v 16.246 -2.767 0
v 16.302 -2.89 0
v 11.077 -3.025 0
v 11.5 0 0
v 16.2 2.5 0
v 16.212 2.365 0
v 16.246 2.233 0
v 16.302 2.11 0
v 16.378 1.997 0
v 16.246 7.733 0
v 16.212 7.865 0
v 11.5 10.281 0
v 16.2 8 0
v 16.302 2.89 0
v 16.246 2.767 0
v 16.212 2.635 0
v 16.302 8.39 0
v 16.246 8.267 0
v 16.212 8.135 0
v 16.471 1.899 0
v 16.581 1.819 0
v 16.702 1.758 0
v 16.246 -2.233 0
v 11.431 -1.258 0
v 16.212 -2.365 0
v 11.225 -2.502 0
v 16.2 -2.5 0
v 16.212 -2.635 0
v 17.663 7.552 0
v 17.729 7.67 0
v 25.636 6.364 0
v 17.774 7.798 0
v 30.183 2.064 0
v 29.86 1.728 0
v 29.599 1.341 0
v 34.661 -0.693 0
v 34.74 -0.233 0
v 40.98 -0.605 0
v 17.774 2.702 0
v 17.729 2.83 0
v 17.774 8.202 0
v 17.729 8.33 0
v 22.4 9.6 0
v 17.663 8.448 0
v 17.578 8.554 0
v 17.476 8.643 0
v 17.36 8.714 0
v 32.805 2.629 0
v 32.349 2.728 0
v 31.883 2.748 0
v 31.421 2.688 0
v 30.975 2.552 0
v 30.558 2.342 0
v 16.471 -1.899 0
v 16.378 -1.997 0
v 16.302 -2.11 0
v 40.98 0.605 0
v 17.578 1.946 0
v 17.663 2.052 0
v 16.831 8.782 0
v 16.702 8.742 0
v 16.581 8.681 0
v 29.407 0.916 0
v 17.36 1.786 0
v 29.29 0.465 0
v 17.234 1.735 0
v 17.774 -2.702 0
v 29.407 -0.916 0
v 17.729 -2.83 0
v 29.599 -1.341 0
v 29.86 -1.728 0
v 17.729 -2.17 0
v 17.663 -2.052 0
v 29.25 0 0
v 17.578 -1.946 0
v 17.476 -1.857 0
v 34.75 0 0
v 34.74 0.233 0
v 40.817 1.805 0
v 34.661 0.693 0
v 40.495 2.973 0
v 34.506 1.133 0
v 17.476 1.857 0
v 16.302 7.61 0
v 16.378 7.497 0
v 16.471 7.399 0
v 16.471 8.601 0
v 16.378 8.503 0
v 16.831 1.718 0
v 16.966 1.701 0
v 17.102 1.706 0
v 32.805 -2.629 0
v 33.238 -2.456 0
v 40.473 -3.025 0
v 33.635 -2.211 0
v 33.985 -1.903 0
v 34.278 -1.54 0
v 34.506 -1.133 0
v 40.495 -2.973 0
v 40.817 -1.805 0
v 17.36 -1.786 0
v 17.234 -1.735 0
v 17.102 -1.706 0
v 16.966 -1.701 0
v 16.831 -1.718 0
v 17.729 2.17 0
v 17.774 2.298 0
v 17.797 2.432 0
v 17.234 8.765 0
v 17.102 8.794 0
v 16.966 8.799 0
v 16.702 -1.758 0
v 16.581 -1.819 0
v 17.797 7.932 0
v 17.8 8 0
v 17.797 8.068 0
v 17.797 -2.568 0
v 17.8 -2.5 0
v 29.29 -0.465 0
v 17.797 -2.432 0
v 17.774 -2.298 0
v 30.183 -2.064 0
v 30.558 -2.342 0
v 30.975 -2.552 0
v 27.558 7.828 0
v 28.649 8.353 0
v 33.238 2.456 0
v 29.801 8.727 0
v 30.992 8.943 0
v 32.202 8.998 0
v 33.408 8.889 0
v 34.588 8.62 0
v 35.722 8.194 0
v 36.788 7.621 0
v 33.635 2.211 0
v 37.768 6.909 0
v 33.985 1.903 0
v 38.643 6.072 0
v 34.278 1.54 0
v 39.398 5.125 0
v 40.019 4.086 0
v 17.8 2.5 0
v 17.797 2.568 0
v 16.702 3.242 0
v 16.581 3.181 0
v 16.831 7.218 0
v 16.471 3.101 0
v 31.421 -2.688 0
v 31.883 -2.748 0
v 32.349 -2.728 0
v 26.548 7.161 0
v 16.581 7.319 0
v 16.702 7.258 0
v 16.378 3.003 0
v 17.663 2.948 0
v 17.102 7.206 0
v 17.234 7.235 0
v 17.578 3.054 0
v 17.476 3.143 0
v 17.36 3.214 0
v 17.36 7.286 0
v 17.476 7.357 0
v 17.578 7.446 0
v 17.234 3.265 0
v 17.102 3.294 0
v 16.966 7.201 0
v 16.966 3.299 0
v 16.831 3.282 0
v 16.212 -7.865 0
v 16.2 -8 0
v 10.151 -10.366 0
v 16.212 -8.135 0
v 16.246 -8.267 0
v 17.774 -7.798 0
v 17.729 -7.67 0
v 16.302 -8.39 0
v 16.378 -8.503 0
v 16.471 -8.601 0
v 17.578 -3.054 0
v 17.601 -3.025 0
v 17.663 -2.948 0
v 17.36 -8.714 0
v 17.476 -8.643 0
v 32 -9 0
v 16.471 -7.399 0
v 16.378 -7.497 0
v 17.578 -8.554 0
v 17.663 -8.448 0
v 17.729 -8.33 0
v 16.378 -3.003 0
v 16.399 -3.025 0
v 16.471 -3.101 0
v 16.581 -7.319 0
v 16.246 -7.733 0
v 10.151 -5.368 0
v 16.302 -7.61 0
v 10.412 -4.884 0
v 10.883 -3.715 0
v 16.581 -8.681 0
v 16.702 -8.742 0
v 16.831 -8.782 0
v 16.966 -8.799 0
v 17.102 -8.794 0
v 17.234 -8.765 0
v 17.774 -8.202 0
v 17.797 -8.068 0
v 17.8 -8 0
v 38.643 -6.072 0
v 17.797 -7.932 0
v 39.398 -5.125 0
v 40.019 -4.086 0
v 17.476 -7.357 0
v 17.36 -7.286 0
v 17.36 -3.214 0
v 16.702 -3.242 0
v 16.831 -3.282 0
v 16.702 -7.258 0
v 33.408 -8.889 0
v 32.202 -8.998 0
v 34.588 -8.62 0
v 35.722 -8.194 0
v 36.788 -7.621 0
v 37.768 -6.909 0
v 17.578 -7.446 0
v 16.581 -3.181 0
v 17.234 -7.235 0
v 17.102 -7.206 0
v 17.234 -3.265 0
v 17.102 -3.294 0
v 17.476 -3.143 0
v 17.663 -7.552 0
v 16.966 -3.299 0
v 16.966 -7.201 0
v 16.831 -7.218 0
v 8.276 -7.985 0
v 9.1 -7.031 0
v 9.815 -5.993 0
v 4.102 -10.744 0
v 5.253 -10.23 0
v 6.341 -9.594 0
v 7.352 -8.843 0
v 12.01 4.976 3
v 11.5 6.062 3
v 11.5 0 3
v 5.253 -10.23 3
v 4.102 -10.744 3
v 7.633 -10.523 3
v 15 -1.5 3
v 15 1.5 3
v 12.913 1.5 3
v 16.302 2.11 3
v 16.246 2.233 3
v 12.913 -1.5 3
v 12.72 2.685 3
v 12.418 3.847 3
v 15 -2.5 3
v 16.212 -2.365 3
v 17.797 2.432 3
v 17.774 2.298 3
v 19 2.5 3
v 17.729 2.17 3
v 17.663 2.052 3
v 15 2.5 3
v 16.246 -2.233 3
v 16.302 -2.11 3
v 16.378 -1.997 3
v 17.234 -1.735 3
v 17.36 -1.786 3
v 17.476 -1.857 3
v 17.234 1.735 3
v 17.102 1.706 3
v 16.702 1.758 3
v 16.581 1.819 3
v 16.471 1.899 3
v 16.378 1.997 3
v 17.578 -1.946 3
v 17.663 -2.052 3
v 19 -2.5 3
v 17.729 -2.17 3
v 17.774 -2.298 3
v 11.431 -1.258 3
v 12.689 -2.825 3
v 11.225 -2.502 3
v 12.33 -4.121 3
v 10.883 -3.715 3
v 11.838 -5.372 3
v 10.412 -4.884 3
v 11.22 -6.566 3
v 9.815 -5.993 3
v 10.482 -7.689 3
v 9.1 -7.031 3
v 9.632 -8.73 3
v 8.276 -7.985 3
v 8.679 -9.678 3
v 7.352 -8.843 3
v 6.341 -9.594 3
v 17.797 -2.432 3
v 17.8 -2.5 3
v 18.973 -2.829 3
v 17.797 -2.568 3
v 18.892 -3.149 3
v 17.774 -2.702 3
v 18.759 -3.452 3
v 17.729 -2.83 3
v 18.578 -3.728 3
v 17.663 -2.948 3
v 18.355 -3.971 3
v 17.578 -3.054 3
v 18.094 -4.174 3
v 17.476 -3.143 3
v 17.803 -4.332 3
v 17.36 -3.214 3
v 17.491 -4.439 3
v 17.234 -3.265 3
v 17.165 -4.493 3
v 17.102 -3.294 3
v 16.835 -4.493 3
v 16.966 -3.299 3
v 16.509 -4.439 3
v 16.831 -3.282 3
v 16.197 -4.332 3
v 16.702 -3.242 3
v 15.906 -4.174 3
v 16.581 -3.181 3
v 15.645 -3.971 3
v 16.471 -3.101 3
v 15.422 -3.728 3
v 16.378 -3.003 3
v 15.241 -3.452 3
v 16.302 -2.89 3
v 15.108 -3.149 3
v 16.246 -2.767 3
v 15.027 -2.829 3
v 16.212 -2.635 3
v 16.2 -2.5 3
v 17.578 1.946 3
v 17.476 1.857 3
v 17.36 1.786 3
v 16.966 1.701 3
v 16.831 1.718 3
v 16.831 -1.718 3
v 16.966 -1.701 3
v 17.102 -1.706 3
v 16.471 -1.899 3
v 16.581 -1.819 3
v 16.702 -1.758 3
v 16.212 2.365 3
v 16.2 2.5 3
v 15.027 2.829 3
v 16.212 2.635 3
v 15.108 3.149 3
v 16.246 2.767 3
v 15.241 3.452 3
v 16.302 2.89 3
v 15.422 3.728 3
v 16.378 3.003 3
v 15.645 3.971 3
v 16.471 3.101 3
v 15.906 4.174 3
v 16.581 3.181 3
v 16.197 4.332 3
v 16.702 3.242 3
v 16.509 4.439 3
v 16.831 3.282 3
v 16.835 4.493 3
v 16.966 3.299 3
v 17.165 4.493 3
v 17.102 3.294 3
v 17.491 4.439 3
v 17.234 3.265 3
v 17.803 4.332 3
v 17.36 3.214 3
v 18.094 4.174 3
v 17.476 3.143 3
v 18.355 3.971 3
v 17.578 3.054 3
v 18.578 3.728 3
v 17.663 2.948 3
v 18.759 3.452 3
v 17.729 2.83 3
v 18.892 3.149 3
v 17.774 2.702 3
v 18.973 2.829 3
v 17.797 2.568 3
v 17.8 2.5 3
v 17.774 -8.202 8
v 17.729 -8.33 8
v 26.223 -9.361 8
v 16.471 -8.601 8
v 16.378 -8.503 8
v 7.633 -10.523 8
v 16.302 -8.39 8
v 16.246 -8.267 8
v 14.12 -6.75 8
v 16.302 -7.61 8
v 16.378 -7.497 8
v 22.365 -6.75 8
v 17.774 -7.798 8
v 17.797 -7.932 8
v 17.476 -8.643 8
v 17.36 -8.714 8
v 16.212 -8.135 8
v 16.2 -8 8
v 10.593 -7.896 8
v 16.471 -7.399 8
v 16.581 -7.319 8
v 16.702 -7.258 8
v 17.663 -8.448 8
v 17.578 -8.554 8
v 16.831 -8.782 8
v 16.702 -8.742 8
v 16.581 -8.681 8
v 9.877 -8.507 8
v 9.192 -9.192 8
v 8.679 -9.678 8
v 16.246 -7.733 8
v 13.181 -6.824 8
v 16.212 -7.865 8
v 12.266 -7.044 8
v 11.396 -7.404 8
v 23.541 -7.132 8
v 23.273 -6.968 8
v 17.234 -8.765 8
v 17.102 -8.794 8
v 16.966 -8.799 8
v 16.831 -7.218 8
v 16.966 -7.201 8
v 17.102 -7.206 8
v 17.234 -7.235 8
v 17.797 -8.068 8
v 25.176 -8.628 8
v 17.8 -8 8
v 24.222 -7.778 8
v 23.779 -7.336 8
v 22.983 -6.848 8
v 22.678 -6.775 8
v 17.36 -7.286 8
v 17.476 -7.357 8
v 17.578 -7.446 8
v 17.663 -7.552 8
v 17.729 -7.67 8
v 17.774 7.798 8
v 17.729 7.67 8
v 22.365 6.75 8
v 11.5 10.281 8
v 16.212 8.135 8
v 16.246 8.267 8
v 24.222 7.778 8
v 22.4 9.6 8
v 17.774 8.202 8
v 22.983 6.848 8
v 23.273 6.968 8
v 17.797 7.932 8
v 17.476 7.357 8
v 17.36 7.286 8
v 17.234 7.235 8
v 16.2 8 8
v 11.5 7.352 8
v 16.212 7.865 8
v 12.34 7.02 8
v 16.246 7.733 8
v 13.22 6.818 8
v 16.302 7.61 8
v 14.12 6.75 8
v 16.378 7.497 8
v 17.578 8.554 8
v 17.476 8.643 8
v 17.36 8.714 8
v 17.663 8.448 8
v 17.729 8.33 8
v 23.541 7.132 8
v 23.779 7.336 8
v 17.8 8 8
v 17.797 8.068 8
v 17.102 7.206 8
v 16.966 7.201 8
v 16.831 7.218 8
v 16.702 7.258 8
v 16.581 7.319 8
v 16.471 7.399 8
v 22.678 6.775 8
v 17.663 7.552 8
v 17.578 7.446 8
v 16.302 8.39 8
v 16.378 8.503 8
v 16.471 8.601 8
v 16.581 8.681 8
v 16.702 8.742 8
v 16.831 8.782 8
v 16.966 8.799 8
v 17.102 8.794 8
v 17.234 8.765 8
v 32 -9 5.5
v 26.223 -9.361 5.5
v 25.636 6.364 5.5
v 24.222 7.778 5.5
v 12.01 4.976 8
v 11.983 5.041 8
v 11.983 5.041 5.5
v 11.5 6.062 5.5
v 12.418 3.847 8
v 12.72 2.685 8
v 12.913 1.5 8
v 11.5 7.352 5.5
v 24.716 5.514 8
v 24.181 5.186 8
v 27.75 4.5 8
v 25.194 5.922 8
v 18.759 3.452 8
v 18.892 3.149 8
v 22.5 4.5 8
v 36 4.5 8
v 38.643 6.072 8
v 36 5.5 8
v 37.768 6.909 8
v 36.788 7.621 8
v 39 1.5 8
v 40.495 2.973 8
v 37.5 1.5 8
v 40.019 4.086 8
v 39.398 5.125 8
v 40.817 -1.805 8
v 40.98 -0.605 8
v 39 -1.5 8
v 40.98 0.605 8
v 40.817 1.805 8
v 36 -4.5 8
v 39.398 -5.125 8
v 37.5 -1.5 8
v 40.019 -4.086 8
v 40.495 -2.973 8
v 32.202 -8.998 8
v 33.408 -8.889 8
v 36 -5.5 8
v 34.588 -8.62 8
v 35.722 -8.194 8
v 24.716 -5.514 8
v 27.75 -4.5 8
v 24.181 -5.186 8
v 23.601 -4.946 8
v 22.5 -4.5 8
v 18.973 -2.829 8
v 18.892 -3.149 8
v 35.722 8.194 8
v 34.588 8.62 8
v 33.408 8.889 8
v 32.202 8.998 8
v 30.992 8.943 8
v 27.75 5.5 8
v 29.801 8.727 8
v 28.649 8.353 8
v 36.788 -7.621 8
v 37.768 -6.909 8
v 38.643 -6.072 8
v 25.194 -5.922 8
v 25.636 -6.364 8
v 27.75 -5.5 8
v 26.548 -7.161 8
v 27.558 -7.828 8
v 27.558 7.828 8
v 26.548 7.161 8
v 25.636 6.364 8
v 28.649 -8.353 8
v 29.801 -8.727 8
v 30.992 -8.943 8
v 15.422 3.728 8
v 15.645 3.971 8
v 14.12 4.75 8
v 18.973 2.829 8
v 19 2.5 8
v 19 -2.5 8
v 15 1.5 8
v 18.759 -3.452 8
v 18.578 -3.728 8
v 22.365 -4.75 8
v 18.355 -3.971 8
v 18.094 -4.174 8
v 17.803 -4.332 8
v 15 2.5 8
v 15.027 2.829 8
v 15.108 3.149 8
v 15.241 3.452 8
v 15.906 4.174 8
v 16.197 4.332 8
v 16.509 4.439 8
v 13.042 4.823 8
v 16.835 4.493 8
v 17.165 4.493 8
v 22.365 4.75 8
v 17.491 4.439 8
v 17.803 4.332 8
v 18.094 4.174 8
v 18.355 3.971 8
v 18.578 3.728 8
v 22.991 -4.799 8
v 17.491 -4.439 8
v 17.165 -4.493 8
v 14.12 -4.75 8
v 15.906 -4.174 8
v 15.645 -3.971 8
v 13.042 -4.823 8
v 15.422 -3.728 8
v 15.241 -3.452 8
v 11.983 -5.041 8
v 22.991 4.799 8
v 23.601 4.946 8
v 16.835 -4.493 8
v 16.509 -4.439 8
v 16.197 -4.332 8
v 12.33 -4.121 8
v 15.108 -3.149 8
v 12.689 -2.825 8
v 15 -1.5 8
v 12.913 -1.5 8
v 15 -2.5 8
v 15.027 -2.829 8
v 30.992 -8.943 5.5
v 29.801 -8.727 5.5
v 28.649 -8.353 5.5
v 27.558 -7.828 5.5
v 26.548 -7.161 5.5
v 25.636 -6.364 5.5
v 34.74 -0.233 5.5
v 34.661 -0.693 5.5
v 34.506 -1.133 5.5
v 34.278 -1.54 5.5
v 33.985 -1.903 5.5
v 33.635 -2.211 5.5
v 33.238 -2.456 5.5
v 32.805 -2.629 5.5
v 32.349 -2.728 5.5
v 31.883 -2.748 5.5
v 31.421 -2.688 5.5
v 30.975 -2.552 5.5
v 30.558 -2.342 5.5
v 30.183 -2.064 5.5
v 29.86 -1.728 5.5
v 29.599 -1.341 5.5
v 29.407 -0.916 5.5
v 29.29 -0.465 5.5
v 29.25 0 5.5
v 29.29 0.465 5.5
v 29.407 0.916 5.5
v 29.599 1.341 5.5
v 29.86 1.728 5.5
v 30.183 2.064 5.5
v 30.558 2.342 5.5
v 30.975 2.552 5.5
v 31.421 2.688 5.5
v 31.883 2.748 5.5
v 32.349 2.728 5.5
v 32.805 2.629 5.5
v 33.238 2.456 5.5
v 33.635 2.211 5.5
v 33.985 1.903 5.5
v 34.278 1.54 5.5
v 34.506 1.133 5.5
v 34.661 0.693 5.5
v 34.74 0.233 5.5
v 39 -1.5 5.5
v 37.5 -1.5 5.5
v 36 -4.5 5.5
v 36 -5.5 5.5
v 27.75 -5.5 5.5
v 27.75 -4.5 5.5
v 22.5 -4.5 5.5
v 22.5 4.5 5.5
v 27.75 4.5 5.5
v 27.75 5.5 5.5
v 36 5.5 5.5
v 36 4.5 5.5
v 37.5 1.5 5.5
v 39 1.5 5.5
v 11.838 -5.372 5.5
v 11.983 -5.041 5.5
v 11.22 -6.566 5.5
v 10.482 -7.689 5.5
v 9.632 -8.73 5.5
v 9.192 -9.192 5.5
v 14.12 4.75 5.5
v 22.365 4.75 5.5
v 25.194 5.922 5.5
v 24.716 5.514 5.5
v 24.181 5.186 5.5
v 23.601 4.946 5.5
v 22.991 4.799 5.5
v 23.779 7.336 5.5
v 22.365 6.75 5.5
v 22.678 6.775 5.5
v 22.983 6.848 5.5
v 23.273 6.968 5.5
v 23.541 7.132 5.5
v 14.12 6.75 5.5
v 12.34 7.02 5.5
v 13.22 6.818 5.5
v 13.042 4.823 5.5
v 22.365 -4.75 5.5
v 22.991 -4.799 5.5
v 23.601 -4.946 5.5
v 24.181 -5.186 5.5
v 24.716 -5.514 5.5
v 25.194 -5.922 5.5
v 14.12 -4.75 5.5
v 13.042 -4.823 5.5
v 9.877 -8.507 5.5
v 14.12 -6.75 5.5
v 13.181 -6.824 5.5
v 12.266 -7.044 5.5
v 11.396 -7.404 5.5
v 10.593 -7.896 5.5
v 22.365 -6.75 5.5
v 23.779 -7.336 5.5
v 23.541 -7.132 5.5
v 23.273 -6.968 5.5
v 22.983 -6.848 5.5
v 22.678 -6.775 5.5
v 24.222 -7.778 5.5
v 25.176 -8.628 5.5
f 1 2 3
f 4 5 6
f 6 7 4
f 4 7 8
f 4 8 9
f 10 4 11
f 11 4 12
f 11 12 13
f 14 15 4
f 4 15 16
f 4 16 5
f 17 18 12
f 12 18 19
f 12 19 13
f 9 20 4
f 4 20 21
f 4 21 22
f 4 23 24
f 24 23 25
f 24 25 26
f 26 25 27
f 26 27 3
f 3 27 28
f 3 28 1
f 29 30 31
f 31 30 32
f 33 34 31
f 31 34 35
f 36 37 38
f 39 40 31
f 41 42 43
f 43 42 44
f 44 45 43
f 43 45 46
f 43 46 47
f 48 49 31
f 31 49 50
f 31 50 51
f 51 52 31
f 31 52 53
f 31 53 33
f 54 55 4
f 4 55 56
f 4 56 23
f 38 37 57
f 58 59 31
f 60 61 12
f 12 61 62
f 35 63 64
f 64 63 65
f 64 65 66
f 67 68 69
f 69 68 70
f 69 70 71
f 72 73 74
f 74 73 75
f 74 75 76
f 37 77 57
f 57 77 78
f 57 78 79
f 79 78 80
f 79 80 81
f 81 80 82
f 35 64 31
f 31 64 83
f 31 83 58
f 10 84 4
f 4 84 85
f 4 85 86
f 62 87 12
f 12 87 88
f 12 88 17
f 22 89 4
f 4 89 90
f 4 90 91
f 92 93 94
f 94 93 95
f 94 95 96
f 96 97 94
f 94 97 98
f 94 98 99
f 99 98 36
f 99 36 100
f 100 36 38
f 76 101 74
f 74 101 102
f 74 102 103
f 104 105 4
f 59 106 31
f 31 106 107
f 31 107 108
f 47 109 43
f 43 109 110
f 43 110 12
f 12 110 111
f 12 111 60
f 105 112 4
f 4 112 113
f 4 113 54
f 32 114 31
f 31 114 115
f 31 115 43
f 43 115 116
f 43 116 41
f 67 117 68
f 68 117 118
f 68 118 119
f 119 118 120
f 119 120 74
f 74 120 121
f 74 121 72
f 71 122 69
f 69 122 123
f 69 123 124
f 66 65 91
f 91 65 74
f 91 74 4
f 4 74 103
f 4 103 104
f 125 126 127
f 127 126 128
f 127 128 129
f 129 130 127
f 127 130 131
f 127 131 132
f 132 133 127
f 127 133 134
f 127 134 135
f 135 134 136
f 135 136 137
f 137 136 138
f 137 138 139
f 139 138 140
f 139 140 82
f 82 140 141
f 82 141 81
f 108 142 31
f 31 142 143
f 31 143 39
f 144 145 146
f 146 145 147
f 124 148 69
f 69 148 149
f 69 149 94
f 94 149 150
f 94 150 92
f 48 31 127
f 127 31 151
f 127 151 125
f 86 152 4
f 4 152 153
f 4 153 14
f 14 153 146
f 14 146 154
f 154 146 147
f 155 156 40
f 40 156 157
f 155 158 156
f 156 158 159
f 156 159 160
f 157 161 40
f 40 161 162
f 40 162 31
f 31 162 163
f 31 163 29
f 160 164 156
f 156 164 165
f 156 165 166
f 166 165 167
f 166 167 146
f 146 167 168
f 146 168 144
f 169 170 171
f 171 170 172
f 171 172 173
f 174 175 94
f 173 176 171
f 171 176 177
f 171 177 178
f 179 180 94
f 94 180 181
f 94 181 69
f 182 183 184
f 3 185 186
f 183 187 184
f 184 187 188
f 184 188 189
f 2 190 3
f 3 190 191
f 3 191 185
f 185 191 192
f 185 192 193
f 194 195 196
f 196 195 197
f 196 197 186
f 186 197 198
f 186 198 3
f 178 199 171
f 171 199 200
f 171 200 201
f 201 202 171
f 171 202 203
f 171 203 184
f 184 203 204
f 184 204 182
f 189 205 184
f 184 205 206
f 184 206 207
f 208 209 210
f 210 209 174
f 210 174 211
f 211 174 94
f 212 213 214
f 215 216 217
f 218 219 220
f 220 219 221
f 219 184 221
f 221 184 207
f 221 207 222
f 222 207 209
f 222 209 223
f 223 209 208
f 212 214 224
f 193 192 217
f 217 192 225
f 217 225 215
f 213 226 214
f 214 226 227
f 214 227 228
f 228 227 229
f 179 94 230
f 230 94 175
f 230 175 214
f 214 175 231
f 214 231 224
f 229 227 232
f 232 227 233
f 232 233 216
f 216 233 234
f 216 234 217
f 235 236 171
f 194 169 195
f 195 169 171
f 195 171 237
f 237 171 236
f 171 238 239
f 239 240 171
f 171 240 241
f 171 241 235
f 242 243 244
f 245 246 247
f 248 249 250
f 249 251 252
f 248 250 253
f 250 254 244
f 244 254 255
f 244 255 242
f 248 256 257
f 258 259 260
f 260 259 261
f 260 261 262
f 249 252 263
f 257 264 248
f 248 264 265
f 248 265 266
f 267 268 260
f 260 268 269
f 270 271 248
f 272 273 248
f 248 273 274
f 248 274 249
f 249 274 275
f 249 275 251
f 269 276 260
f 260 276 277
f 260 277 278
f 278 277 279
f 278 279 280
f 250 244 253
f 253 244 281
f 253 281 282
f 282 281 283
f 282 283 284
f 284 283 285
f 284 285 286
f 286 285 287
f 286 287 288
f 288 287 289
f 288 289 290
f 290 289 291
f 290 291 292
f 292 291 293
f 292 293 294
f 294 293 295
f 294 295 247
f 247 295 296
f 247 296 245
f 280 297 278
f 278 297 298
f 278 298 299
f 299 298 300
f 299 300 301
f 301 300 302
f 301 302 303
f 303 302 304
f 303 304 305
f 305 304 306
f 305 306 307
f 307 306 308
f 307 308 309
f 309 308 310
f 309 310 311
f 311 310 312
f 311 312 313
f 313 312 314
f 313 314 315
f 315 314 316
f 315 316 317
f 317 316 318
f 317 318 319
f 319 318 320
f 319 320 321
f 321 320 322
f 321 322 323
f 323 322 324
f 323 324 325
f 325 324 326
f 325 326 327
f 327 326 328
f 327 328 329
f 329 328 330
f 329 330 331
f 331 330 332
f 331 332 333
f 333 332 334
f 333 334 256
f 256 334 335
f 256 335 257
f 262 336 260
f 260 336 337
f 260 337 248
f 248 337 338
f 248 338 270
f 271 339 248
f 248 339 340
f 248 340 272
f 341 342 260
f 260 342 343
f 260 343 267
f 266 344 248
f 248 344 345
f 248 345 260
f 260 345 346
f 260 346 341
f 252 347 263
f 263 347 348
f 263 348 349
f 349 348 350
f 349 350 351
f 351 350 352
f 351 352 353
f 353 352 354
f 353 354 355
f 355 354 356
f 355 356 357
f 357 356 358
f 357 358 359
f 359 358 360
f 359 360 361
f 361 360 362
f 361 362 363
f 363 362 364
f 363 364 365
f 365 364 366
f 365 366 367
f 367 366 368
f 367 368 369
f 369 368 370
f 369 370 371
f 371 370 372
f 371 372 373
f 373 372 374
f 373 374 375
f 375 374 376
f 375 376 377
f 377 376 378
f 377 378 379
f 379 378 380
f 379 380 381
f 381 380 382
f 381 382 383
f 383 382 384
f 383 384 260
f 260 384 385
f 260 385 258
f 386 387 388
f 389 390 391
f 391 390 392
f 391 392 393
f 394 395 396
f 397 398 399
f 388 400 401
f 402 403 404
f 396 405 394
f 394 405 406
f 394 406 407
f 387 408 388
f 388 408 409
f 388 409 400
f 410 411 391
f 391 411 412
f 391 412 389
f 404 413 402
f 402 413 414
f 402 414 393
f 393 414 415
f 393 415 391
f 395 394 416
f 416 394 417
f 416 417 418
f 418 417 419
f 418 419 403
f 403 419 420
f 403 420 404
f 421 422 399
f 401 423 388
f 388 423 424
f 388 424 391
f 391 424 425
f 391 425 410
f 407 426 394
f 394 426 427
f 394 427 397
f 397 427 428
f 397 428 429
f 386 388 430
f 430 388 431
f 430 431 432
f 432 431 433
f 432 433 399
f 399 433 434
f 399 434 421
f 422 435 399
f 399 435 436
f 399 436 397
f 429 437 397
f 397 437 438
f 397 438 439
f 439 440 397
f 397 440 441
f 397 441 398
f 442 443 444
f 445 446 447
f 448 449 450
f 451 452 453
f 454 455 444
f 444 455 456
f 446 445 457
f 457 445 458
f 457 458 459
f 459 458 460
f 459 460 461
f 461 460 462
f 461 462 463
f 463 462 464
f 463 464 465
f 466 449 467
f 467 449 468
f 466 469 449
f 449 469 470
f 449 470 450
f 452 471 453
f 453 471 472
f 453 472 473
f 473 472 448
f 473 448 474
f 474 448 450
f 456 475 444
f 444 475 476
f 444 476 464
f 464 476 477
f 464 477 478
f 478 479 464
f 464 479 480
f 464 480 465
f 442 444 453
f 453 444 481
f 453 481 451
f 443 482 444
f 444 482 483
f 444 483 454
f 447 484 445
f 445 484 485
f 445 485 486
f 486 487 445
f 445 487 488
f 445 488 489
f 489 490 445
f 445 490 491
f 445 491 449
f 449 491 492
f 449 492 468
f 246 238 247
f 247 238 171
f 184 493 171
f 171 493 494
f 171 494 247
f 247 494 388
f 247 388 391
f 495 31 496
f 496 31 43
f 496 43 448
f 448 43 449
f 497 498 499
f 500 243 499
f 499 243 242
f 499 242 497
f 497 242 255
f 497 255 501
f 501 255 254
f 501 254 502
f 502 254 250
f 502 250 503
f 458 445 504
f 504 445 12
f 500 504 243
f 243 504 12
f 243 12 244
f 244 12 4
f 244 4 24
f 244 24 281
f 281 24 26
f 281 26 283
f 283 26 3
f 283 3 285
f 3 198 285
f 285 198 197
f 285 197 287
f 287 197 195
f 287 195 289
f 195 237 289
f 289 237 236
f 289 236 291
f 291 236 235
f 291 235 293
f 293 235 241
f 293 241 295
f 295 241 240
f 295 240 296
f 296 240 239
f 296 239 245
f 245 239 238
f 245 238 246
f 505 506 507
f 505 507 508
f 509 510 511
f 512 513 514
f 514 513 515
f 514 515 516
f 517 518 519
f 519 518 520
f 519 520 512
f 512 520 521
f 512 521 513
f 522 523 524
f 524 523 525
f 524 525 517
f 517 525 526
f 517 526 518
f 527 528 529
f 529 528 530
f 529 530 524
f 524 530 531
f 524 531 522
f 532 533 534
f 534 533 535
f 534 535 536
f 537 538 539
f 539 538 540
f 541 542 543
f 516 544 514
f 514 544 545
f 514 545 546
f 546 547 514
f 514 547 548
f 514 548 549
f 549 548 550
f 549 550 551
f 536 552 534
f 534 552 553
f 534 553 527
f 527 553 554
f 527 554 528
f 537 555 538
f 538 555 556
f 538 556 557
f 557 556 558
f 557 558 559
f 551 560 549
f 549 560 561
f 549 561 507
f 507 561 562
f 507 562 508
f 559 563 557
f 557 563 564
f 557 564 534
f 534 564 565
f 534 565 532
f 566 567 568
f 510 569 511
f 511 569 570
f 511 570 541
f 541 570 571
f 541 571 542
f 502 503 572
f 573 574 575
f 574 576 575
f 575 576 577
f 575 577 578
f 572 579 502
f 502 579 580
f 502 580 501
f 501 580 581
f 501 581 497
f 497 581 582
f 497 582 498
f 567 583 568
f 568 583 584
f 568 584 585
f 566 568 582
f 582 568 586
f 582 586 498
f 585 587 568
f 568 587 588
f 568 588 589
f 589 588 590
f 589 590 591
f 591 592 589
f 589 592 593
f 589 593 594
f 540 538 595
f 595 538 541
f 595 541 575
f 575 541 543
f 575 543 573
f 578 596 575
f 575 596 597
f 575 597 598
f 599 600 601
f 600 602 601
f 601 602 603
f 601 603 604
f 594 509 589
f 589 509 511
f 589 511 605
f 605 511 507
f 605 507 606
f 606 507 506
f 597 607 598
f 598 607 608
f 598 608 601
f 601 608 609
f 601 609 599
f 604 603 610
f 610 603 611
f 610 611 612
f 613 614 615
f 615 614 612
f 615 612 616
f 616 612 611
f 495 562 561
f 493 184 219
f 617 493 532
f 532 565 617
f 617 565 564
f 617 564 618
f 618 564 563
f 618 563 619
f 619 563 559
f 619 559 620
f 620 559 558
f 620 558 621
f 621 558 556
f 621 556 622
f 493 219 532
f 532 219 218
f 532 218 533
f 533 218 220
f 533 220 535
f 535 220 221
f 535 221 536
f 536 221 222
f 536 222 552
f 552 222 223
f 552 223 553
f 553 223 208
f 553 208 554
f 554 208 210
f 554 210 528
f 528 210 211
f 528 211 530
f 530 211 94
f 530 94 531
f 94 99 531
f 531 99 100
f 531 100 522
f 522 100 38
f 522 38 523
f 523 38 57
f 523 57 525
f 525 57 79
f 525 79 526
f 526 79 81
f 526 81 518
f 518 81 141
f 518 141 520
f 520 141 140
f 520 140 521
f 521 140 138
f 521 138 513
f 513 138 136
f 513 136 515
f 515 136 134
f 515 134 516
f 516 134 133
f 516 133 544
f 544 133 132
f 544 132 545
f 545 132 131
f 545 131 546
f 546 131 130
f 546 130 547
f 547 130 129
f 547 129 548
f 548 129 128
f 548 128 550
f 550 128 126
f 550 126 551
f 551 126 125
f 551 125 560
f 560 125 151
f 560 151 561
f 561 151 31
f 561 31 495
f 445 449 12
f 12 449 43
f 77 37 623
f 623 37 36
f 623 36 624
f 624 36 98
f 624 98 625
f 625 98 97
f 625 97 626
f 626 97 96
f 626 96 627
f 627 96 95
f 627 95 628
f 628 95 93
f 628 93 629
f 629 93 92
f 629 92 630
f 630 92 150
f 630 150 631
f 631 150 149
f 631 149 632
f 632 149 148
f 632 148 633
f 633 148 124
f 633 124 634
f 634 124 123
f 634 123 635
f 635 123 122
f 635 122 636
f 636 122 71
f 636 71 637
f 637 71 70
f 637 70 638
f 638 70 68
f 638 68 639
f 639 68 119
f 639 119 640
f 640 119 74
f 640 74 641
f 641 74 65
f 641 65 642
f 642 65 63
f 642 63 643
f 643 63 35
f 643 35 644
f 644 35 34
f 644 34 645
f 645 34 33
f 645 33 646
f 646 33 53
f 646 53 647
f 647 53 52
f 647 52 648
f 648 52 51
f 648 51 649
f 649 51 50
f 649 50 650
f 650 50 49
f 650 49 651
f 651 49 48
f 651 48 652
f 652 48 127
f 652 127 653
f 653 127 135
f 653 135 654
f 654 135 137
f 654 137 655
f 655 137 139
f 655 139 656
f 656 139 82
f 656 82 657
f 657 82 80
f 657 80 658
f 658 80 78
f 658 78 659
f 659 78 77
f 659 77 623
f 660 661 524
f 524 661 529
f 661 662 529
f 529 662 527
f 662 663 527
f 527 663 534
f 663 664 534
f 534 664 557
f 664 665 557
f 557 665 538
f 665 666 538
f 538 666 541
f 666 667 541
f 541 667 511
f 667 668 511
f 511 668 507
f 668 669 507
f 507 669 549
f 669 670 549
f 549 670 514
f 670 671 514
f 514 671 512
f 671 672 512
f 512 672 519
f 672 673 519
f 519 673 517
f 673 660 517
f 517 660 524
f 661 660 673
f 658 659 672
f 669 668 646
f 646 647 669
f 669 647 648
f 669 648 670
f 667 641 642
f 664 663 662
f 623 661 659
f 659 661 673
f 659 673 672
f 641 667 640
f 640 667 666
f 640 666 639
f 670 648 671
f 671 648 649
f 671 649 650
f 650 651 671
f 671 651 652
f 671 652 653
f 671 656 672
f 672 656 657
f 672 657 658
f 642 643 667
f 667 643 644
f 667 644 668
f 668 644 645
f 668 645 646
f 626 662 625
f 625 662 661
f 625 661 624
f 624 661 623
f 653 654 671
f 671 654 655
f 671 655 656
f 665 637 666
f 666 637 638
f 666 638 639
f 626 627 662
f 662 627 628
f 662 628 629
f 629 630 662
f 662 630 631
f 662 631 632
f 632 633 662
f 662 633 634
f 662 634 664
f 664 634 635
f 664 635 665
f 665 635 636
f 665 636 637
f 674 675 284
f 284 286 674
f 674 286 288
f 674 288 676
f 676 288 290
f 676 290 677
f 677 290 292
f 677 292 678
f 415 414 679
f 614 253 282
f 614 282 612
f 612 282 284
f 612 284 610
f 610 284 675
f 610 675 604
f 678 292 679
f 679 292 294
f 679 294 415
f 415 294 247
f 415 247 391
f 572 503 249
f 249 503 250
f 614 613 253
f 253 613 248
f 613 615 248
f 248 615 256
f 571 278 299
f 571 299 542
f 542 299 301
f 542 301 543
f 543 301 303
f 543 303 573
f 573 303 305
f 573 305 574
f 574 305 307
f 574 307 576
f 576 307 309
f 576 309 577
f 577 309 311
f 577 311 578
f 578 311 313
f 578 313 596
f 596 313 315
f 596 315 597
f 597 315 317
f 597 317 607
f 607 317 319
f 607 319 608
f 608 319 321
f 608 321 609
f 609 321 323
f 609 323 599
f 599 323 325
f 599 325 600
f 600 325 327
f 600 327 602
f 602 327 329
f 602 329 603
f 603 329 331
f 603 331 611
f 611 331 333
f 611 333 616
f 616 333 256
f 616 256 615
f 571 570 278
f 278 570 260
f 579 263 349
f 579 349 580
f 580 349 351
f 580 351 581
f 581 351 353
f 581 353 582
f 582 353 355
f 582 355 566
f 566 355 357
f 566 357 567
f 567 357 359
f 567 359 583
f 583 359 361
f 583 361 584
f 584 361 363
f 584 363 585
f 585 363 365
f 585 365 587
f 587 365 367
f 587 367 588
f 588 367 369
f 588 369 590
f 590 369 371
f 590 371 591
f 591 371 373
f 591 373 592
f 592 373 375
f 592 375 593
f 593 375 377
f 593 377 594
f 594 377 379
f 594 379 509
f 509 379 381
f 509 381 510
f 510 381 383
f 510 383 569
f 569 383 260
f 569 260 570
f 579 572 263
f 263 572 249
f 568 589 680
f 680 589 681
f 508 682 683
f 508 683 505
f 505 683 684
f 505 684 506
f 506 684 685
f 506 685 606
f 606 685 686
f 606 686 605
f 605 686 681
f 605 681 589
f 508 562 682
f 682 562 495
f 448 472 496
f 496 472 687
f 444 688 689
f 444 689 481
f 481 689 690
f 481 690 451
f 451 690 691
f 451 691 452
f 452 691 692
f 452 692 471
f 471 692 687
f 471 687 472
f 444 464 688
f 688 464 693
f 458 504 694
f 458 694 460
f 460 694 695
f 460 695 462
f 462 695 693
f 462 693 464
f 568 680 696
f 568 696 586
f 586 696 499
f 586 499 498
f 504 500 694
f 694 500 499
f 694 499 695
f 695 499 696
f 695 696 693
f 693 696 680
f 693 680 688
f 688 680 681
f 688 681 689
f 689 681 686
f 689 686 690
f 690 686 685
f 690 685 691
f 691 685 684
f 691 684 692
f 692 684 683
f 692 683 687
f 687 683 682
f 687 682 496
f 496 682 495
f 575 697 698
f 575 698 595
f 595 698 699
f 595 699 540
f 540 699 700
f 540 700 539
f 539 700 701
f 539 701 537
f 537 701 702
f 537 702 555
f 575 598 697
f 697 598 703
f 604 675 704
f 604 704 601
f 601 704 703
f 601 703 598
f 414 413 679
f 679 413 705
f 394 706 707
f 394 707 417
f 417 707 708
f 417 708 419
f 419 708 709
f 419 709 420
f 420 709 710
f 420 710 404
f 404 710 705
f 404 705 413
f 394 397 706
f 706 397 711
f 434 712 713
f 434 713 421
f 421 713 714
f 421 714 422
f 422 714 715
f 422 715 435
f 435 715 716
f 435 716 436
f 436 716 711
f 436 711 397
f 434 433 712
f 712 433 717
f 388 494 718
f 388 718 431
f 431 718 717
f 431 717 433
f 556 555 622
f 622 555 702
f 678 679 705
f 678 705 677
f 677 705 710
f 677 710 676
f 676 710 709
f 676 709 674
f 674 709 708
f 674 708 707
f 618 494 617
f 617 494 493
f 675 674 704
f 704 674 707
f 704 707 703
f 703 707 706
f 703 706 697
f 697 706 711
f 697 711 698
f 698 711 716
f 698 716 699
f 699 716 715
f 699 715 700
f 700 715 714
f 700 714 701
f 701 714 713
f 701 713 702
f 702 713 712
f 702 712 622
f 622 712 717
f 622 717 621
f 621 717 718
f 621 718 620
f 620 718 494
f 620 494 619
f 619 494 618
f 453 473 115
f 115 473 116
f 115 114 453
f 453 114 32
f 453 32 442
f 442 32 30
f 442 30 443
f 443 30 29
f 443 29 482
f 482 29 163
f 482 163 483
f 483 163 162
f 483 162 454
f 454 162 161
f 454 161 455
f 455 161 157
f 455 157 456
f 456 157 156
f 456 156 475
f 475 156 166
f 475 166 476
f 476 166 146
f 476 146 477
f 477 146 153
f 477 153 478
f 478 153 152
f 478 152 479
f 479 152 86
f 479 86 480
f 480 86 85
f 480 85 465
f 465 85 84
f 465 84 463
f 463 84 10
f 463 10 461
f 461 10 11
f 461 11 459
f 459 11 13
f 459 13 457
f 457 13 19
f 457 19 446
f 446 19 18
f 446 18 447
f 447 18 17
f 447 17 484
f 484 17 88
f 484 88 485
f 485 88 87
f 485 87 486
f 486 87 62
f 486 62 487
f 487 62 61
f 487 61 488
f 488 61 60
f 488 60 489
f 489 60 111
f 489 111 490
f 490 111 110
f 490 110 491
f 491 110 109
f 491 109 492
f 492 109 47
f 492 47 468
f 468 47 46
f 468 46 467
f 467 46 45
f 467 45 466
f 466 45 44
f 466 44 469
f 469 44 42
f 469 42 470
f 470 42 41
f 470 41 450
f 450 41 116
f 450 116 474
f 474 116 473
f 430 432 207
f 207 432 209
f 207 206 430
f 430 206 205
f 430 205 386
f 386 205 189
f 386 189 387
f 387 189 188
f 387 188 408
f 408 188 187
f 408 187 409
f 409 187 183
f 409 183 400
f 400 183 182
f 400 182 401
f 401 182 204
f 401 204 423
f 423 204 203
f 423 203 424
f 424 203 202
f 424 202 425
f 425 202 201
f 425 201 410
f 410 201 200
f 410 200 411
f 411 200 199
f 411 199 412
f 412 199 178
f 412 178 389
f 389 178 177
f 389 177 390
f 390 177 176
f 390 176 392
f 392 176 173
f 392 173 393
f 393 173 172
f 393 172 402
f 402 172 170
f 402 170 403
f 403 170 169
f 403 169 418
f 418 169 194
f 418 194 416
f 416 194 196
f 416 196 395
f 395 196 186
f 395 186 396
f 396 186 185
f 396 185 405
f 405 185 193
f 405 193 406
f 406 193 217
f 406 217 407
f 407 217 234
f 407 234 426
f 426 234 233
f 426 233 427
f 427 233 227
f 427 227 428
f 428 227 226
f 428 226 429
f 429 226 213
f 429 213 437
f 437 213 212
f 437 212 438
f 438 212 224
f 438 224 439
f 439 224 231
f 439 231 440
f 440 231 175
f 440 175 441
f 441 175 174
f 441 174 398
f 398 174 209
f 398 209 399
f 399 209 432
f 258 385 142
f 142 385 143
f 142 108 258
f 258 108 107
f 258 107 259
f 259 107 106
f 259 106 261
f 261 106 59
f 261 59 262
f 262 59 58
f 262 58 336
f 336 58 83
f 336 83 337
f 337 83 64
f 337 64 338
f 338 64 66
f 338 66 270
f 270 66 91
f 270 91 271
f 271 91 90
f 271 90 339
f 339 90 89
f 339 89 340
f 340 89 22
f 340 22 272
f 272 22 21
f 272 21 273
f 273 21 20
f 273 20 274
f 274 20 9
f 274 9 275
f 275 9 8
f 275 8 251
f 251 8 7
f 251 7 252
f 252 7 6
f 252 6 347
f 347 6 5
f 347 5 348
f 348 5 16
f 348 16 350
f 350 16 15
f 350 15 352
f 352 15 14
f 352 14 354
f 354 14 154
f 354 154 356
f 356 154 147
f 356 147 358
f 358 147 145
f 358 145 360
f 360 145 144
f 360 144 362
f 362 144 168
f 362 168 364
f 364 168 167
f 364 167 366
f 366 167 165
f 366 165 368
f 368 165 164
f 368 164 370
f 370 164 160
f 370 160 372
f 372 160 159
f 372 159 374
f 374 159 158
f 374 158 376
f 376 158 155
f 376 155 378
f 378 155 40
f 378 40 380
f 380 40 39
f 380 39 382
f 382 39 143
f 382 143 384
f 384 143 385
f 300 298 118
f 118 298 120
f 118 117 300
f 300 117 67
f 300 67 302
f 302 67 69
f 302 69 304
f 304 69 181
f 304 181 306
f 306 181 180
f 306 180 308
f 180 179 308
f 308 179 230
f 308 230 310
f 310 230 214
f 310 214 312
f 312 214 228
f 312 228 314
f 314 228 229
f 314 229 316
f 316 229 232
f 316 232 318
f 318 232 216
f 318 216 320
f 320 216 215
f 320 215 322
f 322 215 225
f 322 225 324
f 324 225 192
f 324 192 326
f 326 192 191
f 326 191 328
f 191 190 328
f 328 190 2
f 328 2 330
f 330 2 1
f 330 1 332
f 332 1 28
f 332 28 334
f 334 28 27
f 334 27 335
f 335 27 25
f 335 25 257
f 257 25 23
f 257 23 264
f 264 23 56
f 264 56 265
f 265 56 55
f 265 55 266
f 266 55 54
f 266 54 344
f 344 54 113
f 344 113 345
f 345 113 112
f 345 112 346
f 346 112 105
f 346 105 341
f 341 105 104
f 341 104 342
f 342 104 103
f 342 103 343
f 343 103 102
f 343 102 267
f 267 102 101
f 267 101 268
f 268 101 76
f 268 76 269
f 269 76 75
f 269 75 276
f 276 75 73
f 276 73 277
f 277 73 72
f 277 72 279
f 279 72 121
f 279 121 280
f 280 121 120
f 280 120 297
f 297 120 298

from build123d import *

# Parameters (mm, degrees)
SKETCH1_R                   = 2.75
BOSS_EXTRUDE1_DEPTH         = 8
POT_START                   = 8
POT_INSERT_DEPTH            = 2.5
MIDDLE_START                = 3
SKETCH7_R                   = 11
MIDDLE_FLEX_EXT_CANAL_DEPTH = 5
DISTAL_START                = 5.5
DISTAL_FLEX_EXT_CANAL_DEPTH = 2.5
SKETCH3_R                   = 0.8
SCREW_HOLES_DEPTH           = 44.132654063


with BuildPart() as part:
    # Sketch1 → Boss-Extrude1 (new body)
    with BuildSketch(Plane.XY):
        with BuildLine():
            Line((11.5, 10.28125), (11.5, 0))
            ThreePointArc((11.5, 0), (9.471532219, -6.522275479), (4.101725666, -10.743642146))
            Line((4.101725666, -10.743642146), (32, -9))
            ThreePointArc((32, -9), (40.314915793, 3.444150891), (25.636038969, 6.363961031))
            Line((25.636038969, 6.363961031), (22.4, 9.6))
            Line((22.4, 9.6), (11.5, 10.28125))
        make_face()
        with Locations((32, 0)):
            Circle(SKETCH1_R, mode=Mode.SUBTRACT)
    extrude(amount=BOSS_EXTRUDE1_DEPTH)

    # Sketch2 → Pot Insert (cut)
    with BuildSketch(Plane(origin=(28.28760271, 0, 0), x_dir=(1, 0, 0), z_dir=(0, 0, 1)).offset(POT_START)):
        Polygon((10.71239729, 0), (10.71239729, 1.5), (9.21239729, 1.5), (7.71239729, 4.5), (7.71239729, 5.5), (3.71239729, 5.5), (-0.53760271, 5.5), (-0.53760271, 4.5), (-5.78760271, 4.5), (-5.78760271, 0), (-5.78760271, -4.5), (-0.53760271, -4.5), (-0.53760271, -5.5), (3.71239729, -5.5), (7.71239729, -5.5), (7.71239729, -4.5), (9.21239729, -1.5), (10.71239729, -1.5), align=None)
    extrude(amount=-POT_INSERT_DEPTH, mode=Mode.SUBTRACT)

    # Sketch7 → Middle Flex/Ext Canal (cut)
    with BuildSketch(Plane.XY.offset(MIDDLE_START)):
        with BuildLine():
            ThreePointArc((19, 2.5), (17, 4.5), (15, 2.5))
            Line((15, 2.5), (15, 1.5))
            Line((15, 1.5), (12.91317157, 1.5))
            ThreePointArc((12.91317157, 1.5), (-13, 0), (12.91317157, -1.5))
            Line((12.91317157, -1.5), (15, -1.5))
            Line((15, -1.5), (15, -2.5))
            ThreePointArc((15, -2.5), (17, -4.5), (19, -2.5))
            Line((19, -2.5), (19, 2.5))
        make_face()
        Circle(SKETCH7_R, mode=Mode.SUBTRACT)
    extrude(amount=MIDDLE_FLEX_EXT_CANAL_DEPTH, mode=Mode.SUBTRACT)

    # Sketch6 → Distal Flex/Ext Canal (cut)
    with BuildSketch(Plane.XY.offset(DISTAL_START)):
        with BuildLine():
            ThreePointArc((8.463203436, 7.093145751), (11.058590226, 5.35896374), (14.120057685, 4.75))
            Line((14.120057685, 4.75), (22.365223689, 4.75))
            ThreePointArc((22.365223689, 4.75), (23.895957419, 5.05448187), (25.193650814, 5.921572875))
            Line((25.193650814, 5.921572875), (25.636038969, 6.363961031))
            Line((25.636038969, 6.363961031), (24.221825407, 7.778174593))
            Line((24.221825407, 7.778174593), (23.779437252, 7.335786438))
            ThreePointArc((23.779437252, 7.335786438), (23.130590554, 6.902240935), (22.365223689, 6.75))
            Line((22.365223689, 6.75), (14.120057685, 6.75))
            ThreePointArc((14.120057685, 6.75), (11.823957091, 7.206722805), (9.877416998, 8.507359313))
            Line((9.877416998, 8.507359313), (9.192388155, 9.192388155))
            Line((9.192388155, 9.192388155), (7.778174593, 7.778174593))
            Line((7.778174593, 7.778174593), (8.463203436, 7.093145751))
        make_face()
        with BuildLine():
            Line((1.369649805, -10.914396887), (7.633365377, -10.522914664))
            ThreePointArc((7.633365377, -10.522914664), (8.439139214, -9.888424006), (9.192388155, -9.192388155))
            Line((9.192388155, -9.192388155), (9.877416998, -8.507359313))
            ThreePointArc((9.877416998, -8.507359313), (11.823957091, -7.206722805), (14.120057685, -6.75))
            Line((14.120057685, -6.75), (22.365223689, -6.75))
            ThreePointArc((22.365223689, -6.75), (23.130590554, -6.902240935), (23.779437252, -7.335786438))
            Line((23.779437252, -7.335786438), (24.221825407, -7.778174593))
            ThreePointArc((24.221825407, -7.778174593), (25.176485851, -8.627841831), (26.223253078, -9.361046683))
            Line((26.223253078, -9.361046683), (32, -9))
            ThreePointArc((32, -9), (28.555849109, -8.314915793), (25.636038969, -6.363961031))
            Line((25.636038969, -6.363961031), (25.193650814, -5.921572875))
            ThreePointArc((25.193650814, -5.921572875), (23.895957419, -5.05448187), (22.365223689, -4.75))
            Line((22.365223689, -4.75), (14.120057685, -4.75))
            ThreePointArc((14.120057685, -4.75), (11.058590226, -5.35896374), (8.463203436, -7.093145751))
            Line((8.463203436, -7.093145751), (7.778174593, -7.778174593))
            ThreePointArc((7.778174593, -7.778174593), (4.835250291, -9.880301343), (1.369649805, -10.914396887))
        make_face()
    extrude(amount=DISTAL_FLEX_EXT_CANAL_DEPTH, mode=Mode.SUBTRACT)

    # Sketch3 → Screw Holes (cut, through all)
    with BuildSketch(Plane.XY):
        with Locations((17, 8)):
            Circle(SKETCH3_R)
        with Locations((17, -8)):
            Circle(SKETCH3_R)
        with Locations((17, 2.5)):
            Circle(SKETCH3_R)
        with Locations((17, -2.5)):
            Circle(SKETCH3_R)
    extrude(amount=SCREW_HOLES_DEPTH, mode=Mode.SUBTRACT)


solid = part.part
